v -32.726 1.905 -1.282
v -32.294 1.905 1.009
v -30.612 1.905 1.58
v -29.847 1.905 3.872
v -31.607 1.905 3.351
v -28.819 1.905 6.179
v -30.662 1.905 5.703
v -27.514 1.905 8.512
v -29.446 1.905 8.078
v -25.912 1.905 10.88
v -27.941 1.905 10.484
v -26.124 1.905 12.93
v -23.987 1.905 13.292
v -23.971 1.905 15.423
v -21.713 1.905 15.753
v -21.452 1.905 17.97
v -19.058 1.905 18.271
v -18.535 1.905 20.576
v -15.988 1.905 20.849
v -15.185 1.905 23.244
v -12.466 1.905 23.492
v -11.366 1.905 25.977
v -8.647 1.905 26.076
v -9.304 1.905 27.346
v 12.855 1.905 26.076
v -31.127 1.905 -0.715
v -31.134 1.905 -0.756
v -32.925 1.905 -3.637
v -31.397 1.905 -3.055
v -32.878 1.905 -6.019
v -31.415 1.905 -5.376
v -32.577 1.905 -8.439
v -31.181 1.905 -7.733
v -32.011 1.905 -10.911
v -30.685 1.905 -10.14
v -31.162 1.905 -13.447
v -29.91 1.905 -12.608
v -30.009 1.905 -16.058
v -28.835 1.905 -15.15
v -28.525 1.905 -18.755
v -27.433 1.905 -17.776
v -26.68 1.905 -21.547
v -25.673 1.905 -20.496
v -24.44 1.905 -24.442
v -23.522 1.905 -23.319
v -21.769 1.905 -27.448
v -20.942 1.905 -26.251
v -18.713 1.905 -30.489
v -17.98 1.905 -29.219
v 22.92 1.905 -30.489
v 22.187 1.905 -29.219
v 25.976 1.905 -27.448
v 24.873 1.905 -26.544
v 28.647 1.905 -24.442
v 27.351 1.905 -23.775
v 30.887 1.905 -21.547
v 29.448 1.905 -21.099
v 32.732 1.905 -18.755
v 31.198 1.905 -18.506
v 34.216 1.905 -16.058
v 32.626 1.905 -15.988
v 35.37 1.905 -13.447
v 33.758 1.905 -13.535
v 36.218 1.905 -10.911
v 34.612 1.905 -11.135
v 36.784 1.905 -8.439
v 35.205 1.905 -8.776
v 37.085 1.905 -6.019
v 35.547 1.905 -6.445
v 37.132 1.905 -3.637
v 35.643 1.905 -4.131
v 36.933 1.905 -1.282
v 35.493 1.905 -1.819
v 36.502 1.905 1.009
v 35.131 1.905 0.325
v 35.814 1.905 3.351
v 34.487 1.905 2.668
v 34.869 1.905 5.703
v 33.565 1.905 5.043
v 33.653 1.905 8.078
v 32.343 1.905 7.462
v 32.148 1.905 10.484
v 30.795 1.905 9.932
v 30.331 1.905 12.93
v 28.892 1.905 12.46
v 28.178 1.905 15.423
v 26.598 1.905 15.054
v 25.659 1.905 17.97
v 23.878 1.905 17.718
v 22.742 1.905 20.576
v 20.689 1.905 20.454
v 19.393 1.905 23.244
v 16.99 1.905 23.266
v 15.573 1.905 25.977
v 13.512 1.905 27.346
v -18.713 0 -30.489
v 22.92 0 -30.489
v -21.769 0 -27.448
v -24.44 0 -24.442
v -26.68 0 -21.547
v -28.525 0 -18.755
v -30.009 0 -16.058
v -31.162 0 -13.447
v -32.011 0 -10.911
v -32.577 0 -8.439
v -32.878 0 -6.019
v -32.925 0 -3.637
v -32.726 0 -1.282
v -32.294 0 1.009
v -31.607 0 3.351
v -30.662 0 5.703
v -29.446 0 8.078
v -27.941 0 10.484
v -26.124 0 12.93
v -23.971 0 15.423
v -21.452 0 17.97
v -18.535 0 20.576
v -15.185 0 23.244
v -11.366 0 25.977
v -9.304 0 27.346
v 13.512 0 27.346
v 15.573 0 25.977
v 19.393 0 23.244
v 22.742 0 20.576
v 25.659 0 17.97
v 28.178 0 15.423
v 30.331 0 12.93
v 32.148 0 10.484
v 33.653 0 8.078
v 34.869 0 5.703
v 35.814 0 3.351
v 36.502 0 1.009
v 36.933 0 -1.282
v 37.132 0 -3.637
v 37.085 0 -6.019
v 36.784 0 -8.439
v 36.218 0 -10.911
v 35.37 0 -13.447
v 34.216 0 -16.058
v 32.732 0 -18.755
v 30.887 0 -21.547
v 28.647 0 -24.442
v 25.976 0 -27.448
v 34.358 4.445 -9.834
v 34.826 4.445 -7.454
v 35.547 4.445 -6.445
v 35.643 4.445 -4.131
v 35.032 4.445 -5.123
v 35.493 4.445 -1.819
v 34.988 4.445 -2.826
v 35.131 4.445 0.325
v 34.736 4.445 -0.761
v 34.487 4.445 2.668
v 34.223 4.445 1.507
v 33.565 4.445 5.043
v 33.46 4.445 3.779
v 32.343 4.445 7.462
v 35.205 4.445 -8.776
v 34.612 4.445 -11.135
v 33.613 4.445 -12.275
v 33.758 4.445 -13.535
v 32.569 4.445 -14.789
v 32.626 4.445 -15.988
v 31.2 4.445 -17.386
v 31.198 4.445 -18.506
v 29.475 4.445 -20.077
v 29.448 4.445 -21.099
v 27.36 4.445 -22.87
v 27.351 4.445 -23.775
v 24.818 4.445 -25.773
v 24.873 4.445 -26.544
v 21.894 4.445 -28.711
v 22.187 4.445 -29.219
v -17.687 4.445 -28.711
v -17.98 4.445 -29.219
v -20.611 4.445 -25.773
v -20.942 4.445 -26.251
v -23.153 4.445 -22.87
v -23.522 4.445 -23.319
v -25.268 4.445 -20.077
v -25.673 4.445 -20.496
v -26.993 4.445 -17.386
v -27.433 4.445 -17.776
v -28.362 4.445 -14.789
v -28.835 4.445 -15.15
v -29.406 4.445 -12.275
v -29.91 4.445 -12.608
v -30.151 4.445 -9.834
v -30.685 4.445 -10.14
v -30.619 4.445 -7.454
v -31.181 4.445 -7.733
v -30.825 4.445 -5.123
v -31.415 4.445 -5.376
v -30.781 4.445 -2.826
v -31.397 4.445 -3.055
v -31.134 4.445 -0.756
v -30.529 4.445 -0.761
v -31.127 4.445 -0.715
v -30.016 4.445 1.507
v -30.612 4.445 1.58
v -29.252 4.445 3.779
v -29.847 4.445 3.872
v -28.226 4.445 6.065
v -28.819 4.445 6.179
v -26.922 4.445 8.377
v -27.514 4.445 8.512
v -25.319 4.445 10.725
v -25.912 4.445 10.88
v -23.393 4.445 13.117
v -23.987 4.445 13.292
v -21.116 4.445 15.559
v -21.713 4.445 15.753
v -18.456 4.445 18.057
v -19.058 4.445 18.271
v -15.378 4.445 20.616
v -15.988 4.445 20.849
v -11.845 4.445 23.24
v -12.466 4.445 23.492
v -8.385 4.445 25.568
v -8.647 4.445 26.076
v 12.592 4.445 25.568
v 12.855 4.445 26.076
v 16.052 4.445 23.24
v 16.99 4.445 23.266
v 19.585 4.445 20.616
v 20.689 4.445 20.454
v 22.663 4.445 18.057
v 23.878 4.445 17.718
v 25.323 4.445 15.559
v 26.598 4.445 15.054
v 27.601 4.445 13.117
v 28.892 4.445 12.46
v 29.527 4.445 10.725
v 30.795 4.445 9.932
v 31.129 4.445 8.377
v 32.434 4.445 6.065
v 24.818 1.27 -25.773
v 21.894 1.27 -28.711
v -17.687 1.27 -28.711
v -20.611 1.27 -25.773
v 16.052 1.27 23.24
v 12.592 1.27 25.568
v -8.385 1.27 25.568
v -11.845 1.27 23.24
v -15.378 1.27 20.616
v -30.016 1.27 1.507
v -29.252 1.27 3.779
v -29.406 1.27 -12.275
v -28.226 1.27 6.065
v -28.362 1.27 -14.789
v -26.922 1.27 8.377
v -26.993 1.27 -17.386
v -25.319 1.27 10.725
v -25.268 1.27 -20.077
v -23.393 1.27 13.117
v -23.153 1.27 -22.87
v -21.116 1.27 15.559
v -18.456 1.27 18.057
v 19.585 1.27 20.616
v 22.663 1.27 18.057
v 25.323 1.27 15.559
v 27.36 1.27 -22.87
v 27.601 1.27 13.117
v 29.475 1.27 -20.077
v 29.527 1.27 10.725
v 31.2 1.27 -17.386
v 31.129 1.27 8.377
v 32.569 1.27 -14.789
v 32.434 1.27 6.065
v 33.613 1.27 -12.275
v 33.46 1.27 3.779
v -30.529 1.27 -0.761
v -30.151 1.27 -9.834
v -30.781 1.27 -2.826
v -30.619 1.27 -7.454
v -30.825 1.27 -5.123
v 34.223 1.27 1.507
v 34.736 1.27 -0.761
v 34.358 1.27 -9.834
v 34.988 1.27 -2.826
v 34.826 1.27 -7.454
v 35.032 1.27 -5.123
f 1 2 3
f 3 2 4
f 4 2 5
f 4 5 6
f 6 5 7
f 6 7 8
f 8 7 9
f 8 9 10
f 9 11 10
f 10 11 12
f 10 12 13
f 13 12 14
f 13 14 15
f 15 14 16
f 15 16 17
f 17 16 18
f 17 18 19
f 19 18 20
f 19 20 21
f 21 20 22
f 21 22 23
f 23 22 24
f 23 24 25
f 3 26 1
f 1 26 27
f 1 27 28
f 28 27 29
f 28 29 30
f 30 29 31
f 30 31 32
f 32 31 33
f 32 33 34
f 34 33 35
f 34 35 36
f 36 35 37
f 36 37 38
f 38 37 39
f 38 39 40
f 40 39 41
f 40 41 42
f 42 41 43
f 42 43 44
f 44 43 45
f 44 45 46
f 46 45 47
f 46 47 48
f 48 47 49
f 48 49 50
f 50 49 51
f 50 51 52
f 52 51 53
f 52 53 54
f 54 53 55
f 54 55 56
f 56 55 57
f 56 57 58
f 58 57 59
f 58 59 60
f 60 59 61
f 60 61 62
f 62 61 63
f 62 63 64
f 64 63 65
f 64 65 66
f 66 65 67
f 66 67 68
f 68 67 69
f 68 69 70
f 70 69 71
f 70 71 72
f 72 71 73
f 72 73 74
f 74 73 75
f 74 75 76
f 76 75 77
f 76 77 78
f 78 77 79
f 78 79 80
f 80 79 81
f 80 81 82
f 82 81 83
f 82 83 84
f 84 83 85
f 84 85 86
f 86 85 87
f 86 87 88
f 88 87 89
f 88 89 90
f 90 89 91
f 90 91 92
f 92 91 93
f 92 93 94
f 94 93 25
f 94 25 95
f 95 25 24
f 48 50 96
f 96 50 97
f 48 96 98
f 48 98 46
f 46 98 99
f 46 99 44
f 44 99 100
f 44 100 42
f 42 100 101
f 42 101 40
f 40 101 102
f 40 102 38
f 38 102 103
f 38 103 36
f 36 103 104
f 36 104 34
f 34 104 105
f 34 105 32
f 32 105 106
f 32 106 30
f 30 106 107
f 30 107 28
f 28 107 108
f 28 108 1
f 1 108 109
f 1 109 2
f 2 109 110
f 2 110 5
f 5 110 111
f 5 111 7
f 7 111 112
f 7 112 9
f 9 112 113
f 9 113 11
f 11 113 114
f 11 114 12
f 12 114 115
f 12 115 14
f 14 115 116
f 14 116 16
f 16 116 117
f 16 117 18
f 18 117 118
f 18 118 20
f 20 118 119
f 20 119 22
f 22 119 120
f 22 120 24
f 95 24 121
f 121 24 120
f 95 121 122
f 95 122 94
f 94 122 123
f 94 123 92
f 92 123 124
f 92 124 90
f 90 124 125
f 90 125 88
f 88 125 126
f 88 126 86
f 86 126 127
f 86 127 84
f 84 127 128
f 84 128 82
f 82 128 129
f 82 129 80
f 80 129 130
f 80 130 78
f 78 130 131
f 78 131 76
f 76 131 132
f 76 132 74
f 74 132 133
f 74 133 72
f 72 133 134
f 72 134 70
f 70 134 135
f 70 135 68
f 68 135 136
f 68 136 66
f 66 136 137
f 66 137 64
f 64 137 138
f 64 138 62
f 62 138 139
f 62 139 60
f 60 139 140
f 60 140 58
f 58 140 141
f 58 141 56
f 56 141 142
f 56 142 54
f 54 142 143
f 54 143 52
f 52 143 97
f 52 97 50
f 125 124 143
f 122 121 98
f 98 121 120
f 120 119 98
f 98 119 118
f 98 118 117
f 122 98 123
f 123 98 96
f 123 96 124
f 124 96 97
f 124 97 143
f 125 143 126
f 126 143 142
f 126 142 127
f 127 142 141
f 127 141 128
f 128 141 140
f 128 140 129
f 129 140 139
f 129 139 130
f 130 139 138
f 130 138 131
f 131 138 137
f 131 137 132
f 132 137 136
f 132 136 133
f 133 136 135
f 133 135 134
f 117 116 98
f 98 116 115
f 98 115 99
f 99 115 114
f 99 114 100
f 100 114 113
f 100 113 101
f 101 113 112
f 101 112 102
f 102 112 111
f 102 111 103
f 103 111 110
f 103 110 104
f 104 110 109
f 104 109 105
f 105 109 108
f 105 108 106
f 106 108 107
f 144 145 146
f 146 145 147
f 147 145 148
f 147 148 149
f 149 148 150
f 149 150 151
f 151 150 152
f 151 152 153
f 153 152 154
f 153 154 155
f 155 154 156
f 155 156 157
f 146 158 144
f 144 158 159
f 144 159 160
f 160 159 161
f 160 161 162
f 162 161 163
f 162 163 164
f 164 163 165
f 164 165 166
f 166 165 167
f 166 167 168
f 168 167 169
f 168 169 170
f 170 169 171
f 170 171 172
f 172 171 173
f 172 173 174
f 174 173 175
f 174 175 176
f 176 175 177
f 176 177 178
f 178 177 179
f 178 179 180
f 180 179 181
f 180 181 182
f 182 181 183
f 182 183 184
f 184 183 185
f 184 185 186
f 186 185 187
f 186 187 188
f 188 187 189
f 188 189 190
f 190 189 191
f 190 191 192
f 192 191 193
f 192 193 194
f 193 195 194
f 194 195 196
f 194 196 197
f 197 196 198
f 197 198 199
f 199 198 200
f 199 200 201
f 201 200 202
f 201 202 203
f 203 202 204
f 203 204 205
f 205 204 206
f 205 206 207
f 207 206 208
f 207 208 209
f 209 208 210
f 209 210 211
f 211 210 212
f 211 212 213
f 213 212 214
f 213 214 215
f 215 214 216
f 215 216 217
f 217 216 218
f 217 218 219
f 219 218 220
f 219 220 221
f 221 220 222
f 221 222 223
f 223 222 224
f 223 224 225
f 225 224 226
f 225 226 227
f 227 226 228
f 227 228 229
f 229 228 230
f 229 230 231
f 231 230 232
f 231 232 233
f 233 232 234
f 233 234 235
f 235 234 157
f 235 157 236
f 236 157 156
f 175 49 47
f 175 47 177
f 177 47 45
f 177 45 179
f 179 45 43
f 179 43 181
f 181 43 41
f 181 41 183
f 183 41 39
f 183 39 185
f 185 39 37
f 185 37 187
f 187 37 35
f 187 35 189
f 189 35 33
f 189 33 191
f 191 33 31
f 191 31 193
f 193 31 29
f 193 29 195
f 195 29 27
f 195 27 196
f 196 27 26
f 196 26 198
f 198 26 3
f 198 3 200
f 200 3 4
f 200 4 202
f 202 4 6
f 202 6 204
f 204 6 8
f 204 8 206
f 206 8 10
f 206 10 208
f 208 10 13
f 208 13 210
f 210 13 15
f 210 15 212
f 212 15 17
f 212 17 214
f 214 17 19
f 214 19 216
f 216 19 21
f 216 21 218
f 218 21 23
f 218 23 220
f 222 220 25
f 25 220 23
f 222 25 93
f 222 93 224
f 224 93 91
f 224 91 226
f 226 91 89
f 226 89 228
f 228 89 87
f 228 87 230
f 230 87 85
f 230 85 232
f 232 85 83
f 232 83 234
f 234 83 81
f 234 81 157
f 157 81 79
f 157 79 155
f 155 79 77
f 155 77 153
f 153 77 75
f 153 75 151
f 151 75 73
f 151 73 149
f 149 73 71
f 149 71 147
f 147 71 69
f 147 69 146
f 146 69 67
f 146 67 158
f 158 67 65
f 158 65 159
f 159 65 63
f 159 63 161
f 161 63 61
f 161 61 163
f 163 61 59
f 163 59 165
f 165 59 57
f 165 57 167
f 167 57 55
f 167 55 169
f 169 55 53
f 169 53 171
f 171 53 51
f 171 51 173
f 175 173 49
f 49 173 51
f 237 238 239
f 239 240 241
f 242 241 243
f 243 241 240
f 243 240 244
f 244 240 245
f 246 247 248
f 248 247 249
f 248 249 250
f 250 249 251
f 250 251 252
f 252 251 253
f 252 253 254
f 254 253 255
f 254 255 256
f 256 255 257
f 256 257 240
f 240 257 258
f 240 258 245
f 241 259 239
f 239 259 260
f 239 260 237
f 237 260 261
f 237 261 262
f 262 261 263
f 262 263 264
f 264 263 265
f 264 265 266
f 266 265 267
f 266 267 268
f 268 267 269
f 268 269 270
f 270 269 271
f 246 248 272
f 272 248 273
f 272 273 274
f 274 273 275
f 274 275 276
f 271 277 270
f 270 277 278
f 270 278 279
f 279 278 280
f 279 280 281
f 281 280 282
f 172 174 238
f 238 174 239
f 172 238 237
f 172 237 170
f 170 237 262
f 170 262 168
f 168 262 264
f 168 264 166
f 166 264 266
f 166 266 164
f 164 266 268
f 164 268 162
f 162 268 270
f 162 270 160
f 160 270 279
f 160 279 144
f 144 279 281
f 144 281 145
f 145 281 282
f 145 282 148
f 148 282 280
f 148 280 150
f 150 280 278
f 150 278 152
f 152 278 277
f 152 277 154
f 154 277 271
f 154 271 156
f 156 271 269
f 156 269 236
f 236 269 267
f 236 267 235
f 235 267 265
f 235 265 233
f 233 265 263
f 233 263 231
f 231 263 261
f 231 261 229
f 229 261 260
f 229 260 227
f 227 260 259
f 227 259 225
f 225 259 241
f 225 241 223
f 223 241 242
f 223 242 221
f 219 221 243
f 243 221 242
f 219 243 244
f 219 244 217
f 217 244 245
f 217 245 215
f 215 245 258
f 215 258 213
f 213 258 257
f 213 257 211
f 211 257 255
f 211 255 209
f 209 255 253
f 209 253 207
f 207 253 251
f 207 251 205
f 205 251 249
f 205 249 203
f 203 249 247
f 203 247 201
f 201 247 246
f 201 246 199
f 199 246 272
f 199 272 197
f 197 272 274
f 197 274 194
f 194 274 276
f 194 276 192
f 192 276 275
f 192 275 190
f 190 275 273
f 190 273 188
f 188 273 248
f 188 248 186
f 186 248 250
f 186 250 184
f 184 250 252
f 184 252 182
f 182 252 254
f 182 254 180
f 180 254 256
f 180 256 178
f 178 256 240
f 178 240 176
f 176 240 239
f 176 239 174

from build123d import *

# Parameters (mm, degrees)
BOSS_EXTRUDE6_DEPTH = 1.27
BOSS_EXTRUDE7_DEPTH = 0.635
BOSS_EXTRUDE8_DEPTH = 2.54


with BuildPart() as part:
    # Sketch1 → Boss-Extrude6 (new body)
    with BuildSketch(Plane(origin=(0, 0, 0), x_dir=(1, 0, 0), z_dir=(0, 1, 0))):
        with BuildLine():
            Line((-9.304269575, -27.345620797), (13.511541223, -27.345620797))
            add(Edge.make_bspline(
                [(22.920452389, 30.489026504), (55.478836557, -0.15547818), (13.511541223, -27.345620797)],
                knots=[0, 0, 0, 1, 1, 1], degree=2))
            Line((22.920452389, 30.489026504), (-18.713180741, 30.489026504))
            add(Edge.make_bspline(
                [(-18.713180741, 30.489026504), (-51.271564909, -0.15547818), (-9.304269575, -27.345620797)],
                knots=[0, 0, 0, 1, 1, 1], degree=2))
        make_face()
    extrude(amount=BOSS_EXTRUDE6_DEPTH)

    # Sketch2 → Boss-Extrude7 (add)
    # profile 1 of 2: a face of its own
    with BuildSketch(Plane(origin=(0, 1.27, 0), x_dir=(1, 0, 0), z_dir=(0, 1, 0))):
        with BuildLine():
            Line((-9.304269575, -27.345620797), (13.511541223, -27.345620797))
            add(Edge.make_bspline(
                [(13.511541223, -27.345620797), (55.478836557, -0.15547818), (22.920452389, 30.489026504)],
                knots=[0, 0, 0, 1, 1, 1], degree=2))
            Line((22.920452389, 30.489026504), (-18.713180741, 30.489026504))
            add(Edge.make_bspline(
                [(-18.713180741, 30.489026504), (-51.271564909, -0.15547818), (-9.304269575, -27.345620797)],
                knots=[0, 0, 0, 1, 1, 1], degree=2))
        make_face()
        with BuildLine():
            Line((-17.979945899, 29.219026504), (22.187217547, 29.219026504))
            add(Edge.make_bspline(
                [(22.187217547, 29.219026504), (53.157284404, -0.080086004), (12.854748908, -26.075620797)],
                knots=[0, 0, 0, 1, 1, 1], degree=2))
            Line((12.854748908, -26.075620797), (-8.64747726, -26.075620797))
            add(Edge.make_bspline(
                [(-17.979945899, 29.219026504), (-48.950012756, -0.080086004), (-8.64747726, -26.075620797)],
                knots=[0, 0, 0, 1, 1, 1], degree=2))
        make_face(mode=Mode.SUBTRACT)
    # profile 2 of 2: a face of its own
    with BuildSketch(Plane(origin=(0, 1.27, 0), x_dir=(1, 0, 0), z_dir=(0, 1, 0))):
        with BuildLine():
            add(Edge.make_bspline(
                [(22.187217547, 29.219026504), (53.157284404, -0.080086004), (12.854748908, -26.075620797)],
                knots=[0, 0, 0, 1, 1, 1], degree=2))
            Line((12.854748908, -26.075620797), (-8.64747726, -26.075620797))
            add(Edge.make_bspline(
                [(-17.979945899, 29.219026504), (-48.950012756, -0.080086004), (-8.64747726, -26.075620797)],
                knots=[0, 0, 0, 1, 1, 1], degree=2))
            Line((-17.979945899, 29.219026504), (22.187217547, 29.219026504))
        make_face()
        with BuildLine():
            Line((-17.686651962, 28.711026504), (21.89392361, 28.711026504))
            add(Edge.make_bspline(
                [(21.89392361, 28.711026504), (52.228663543, -0.049929134), (12.592031982, -25.567620797)],
                knots=[0, 0, 0, 1, 1, 1], degree=2))
            Line((12.592031982, -25.567620797), (-8.384760334, -25.567620797))
            add(Edge.make_bspline(
                [(-17.686651962, 28.711026504), (-48.021391895, -0.049929134), (-8.384760334, -25.567620797)],
                knots=[0, 0, 0, 1, 1, 1], degree=2))
        make_face(mode=Mode.SUBTRACT)
    extrude(amount=BOSS_EXTRUDE7_DEPTH)

    # Sketch3 → Boss-Extrude8 (add)
    with BuildSketch(Plane(origin=(0, 1.905, 0), x_dir=(1, 0, 0), z_dir=(0, 1, 0))):
        with BuildLine():
            Line((22.187217547, 29.219026504), (-17.979945899, 29.219026504))
            add(Edge.make_bspline(
                [(-17.979945899, 29.219026504), (-48.950012756, -0.080086004), (-8.64747726, -26.075620797)],
                knots=[0, 0, 0, 1, 1, 1], degree=2))
            Line((-8.64747726, -26.075620797), (12.854748908, -26.075620797))
            add(Edge.make_bspline(
                [(22.187217547, 29.219026504), (53.157284404, -0.080086004), (12.854748908, -26.075620797)],
                knots=[0, 0, 0, 1, 1, 1], degree=2))
        make_face()
        with BuildLine():
            Line((-17.686651962, 28.711026504), (21.89392361, 28.711026504))
            add(Edge.make_bspline(
                [(12.592031982, -25.567620797), (52.228663543, -0.049929134), (21.89392361, 28.711026504)],
                knots=[0, 0, 0, 1, 1, 1], degree=2))
            Line((12.592031982, -25.567620797), (-8.384760334, -25.567620797))
            add(Edge.make_bspline(
                [(-17.686651962, 28.711026504), (-48.021391895, -0.049929134), (-8.384760334, -25.567620797)],
                knots=[0, 0, 0, 1, 1, 1], degree=2))
        make_face(mode=Mode.SUBTRACT)
    extrude(amount=BOSS_EXTRUDE8_DEPTH)


solid = part.part
